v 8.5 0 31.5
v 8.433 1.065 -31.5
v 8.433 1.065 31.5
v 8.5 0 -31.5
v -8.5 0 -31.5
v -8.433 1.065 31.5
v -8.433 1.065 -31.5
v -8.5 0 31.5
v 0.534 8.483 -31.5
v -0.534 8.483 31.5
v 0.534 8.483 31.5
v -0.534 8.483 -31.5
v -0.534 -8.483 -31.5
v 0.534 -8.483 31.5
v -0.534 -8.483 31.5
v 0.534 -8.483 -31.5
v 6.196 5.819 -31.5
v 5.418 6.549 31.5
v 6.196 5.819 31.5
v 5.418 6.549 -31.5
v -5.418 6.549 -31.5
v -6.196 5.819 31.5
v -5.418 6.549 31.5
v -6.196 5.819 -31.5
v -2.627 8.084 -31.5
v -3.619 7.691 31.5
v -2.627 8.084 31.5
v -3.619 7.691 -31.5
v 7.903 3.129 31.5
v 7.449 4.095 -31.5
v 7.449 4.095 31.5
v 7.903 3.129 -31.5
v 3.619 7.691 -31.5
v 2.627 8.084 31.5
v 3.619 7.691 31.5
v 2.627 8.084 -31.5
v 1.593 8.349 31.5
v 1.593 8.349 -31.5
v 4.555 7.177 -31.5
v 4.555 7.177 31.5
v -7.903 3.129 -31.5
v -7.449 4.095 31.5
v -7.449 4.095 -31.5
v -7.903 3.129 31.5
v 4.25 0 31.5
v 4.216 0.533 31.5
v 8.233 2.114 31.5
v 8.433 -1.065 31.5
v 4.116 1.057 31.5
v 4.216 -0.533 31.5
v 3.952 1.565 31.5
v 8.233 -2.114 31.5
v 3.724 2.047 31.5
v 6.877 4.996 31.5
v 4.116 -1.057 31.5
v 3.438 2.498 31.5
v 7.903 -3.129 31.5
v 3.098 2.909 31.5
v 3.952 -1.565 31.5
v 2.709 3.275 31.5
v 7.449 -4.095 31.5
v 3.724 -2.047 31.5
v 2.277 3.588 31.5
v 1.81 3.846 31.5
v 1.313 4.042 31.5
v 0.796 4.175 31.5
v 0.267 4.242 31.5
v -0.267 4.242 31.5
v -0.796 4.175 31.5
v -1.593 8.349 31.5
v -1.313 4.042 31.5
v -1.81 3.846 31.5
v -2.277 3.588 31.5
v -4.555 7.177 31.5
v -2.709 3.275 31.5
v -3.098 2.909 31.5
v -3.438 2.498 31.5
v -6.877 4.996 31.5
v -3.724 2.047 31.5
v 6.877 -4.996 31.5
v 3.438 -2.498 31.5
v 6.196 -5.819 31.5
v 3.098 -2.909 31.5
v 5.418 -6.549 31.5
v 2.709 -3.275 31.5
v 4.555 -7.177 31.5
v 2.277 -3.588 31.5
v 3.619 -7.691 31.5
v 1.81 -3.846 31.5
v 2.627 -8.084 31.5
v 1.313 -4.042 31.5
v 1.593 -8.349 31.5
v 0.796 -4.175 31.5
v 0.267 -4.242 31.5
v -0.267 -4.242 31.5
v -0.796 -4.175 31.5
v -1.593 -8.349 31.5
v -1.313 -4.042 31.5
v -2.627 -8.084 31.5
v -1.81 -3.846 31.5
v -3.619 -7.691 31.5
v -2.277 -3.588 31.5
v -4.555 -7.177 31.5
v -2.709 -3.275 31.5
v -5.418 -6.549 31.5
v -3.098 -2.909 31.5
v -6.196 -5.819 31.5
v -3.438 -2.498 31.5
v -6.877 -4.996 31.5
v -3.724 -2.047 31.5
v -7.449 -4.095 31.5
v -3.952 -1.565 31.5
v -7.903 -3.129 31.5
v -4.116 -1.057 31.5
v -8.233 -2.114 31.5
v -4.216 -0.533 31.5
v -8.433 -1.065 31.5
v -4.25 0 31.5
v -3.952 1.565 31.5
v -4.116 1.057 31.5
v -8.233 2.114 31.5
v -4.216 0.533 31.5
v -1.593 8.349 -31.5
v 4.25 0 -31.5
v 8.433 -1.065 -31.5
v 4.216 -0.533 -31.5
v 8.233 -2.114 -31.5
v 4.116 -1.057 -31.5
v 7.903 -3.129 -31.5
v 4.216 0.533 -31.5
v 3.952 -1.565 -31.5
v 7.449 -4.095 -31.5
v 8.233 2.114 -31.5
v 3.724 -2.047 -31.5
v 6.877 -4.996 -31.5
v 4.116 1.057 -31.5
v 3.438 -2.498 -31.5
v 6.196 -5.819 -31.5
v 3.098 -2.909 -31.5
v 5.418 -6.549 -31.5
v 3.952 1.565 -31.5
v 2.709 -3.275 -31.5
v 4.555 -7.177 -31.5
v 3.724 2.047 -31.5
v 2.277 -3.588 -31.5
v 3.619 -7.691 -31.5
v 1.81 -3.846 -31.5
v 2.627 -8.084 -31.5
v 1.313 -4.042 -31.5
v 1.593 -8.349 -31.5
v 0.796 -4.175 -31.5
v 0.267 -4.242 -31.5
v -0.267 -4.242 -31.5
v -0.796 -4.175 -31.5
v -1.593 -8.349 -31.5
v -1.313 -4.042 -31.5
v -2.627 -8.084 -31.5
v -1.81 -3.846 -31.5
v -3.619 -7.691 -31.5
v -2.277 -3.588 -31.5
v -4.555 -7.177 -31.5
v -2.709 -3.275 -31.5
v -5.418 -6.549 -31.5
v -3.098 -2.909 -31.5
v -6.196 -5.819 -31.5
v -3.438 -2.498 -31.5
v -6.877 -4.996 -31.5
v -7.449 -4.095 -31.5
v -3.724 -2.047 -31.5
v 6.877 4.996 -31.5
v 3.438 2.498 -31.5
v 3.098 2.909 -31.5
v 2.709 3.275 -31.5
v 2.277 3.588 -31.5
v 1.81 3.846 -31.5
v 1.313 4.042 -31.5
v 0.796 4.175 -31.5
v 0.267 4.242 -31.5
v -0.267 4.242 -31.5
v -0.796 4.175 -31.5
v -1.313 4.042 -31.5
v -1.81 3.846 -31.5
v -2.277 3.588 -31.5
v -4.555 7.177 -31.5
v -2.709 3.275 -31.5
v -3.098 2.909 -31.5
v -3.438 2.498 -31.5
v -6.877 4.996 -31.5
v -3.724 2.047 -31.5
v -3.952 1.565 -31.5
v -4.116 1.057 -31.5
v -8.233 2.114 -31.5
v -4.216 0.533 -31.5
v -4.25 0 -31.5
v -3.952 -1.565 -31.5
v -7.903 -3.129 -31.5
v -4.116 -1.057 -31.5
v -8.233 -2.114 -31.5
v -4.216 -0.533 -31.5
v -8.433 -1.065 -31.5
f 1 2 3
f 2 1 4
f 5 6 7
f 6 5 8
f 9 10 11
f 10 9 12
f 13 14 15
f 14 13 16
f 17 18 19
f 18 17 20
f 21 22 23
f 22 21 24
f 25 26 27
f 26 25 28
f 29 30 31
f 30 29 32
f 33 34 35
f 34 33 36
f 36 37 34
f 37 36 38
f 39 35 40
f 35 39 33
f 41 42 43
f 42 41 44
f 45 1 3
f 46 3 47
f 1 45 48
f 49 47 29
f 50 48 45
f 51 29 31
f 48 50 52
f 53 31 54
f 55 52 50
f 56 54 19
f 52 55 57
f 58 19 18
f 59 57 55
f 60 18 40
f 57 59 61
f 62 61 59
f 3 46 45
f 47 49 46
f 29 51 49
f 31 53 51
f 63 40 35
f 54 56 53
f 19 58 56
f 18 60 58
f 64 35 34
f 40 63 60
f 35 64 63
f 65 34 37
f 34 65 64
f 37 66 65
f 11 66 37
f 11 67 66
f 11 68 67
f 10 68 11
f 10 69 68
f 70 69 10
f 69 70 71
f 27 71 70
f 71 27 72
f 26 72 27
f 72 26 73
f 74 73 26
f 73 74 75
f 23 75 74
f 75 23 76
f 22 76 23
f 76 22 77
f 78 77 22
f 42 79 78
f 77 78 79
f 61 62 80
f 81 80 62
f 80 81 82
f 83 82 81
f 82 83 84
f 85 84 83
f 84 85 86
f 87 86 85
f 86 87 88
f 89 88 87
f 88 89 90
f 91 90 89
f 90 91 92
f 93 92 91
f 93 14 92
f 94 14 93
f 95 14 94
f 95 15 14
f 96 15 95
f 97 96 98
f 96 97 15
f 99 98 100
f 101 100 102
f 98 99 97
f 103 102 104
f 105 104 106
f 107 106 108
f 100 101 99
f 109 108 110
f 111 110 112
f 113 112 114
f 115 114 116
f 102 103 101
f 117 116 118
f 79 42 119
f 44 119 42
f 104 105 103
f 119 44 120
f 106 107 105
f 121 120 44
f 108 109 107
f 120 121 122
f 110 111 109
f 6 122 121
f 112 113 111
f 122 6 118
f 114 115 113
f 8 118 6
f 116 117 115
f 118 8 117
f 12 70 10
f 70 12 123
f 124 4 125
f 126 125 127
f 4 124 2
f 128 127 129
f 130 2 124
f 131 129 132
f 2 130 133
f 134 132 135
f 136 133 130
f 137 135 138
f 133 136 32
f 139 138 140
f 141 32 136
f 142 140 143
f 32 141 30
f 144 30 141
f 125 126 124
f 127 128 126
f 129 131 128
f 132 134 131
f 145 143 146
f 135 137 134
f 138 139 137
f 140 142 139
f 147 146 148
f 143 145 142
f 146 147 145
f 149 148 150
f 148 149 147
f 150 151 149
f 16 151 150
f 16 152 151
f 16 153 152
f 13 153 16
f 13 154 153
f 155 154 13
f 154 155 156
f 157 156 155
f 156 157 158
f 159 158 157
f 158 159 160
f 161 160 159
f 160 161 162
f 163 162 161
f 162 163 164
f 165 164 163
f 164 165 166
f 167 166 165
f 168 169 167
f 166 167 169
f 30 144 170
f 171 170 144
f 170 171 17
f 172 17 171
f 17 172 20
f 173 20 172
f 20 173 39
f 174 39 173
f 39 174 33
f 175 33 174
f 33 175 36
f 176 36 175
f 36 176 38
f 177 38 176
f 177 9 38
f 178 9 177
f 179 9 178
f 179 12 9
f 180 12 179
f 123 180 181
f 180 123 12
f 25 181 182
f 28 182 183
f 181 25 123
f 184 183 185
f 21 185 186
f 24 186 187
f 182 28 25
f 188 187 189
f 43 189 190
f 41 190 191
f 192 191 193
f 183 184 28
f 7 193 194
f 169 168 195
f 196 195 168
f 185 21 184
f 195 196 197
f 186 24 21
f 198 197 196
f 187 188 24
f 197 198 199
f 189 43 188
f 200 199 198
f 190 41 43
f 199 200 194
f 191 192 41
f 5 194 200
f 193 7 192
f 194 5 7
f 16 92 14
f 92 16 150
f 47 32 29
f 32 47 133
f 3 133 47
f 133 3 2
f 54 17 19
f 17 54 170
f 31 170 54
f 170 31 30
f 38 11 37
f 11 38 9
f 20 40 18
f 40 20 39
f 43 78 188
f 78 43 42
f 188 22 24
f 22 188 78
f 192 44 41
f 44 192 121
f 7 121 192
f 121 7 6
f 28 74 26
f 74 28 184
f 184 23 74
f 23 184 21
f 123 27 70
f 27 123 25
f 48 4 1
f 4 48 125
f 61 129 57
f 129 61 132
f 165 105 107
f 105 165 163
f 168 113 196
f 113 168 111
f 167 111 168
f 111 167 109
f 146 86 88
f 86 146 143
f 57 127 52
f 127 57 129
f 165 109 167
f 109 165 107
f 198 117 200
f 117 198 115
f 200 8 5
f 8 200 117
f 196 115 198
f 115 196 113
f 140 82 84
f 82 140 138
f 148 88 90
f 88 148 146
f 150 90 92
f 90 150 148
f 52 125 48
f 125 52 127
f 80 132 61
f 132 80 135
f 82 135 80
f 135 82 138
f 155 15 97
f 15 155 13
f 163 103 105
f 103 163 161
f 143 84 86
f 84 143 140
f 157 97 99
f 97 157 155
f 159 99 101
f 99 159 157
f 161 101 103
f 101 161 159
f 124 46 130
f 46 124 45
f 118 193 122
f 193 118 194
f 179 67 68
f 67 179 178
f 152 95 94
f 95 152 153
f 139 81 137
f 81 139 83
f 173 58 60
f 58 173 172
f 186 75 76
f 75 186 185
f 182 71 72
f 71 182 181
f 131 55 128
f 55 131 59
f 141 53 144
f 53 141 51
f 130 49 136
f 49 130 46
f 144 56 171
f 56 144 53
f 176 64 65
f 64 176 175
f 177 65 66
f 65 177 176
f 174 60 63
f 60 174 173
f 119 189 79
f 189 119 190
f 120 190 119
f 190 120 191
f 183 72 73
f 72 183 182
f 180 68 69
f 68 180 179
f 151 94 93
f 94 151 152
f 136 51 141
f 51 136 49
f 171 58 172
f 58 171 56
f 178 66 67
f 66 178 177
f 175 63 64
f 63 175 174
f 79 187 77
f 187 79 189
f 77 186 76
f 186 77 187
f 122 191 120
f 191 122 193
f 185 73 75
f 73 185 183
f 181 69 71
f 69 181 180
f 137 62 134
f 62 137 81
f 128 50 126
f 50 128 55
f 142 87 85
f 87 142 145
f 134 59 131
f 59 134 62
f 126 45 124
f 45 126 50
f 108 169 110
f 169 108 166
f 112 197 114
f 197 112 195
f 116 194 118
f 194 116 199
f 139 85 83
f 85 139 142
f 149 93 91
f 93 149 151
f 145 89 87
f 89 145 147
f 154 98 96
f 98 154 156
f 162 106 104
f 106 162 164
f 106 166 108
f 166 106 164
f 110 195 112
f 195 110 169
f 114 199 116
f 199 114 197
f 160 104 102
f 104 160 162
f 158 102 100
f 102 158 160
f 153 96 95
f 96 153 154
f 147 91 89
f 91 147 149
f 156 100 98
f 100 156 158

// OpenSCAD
$fn = 50;


difference() {
	union() {
		translate(v = [0, 0, -31.5000000000]) {
			cylinder(h = 63, r = 8.5000000000);
		}
	}
	union() {
		translate(v = [0, 0, -100.0000000000]) {
			cylinder(h = 200, r = 4.2500000000);
		}
	}
}
